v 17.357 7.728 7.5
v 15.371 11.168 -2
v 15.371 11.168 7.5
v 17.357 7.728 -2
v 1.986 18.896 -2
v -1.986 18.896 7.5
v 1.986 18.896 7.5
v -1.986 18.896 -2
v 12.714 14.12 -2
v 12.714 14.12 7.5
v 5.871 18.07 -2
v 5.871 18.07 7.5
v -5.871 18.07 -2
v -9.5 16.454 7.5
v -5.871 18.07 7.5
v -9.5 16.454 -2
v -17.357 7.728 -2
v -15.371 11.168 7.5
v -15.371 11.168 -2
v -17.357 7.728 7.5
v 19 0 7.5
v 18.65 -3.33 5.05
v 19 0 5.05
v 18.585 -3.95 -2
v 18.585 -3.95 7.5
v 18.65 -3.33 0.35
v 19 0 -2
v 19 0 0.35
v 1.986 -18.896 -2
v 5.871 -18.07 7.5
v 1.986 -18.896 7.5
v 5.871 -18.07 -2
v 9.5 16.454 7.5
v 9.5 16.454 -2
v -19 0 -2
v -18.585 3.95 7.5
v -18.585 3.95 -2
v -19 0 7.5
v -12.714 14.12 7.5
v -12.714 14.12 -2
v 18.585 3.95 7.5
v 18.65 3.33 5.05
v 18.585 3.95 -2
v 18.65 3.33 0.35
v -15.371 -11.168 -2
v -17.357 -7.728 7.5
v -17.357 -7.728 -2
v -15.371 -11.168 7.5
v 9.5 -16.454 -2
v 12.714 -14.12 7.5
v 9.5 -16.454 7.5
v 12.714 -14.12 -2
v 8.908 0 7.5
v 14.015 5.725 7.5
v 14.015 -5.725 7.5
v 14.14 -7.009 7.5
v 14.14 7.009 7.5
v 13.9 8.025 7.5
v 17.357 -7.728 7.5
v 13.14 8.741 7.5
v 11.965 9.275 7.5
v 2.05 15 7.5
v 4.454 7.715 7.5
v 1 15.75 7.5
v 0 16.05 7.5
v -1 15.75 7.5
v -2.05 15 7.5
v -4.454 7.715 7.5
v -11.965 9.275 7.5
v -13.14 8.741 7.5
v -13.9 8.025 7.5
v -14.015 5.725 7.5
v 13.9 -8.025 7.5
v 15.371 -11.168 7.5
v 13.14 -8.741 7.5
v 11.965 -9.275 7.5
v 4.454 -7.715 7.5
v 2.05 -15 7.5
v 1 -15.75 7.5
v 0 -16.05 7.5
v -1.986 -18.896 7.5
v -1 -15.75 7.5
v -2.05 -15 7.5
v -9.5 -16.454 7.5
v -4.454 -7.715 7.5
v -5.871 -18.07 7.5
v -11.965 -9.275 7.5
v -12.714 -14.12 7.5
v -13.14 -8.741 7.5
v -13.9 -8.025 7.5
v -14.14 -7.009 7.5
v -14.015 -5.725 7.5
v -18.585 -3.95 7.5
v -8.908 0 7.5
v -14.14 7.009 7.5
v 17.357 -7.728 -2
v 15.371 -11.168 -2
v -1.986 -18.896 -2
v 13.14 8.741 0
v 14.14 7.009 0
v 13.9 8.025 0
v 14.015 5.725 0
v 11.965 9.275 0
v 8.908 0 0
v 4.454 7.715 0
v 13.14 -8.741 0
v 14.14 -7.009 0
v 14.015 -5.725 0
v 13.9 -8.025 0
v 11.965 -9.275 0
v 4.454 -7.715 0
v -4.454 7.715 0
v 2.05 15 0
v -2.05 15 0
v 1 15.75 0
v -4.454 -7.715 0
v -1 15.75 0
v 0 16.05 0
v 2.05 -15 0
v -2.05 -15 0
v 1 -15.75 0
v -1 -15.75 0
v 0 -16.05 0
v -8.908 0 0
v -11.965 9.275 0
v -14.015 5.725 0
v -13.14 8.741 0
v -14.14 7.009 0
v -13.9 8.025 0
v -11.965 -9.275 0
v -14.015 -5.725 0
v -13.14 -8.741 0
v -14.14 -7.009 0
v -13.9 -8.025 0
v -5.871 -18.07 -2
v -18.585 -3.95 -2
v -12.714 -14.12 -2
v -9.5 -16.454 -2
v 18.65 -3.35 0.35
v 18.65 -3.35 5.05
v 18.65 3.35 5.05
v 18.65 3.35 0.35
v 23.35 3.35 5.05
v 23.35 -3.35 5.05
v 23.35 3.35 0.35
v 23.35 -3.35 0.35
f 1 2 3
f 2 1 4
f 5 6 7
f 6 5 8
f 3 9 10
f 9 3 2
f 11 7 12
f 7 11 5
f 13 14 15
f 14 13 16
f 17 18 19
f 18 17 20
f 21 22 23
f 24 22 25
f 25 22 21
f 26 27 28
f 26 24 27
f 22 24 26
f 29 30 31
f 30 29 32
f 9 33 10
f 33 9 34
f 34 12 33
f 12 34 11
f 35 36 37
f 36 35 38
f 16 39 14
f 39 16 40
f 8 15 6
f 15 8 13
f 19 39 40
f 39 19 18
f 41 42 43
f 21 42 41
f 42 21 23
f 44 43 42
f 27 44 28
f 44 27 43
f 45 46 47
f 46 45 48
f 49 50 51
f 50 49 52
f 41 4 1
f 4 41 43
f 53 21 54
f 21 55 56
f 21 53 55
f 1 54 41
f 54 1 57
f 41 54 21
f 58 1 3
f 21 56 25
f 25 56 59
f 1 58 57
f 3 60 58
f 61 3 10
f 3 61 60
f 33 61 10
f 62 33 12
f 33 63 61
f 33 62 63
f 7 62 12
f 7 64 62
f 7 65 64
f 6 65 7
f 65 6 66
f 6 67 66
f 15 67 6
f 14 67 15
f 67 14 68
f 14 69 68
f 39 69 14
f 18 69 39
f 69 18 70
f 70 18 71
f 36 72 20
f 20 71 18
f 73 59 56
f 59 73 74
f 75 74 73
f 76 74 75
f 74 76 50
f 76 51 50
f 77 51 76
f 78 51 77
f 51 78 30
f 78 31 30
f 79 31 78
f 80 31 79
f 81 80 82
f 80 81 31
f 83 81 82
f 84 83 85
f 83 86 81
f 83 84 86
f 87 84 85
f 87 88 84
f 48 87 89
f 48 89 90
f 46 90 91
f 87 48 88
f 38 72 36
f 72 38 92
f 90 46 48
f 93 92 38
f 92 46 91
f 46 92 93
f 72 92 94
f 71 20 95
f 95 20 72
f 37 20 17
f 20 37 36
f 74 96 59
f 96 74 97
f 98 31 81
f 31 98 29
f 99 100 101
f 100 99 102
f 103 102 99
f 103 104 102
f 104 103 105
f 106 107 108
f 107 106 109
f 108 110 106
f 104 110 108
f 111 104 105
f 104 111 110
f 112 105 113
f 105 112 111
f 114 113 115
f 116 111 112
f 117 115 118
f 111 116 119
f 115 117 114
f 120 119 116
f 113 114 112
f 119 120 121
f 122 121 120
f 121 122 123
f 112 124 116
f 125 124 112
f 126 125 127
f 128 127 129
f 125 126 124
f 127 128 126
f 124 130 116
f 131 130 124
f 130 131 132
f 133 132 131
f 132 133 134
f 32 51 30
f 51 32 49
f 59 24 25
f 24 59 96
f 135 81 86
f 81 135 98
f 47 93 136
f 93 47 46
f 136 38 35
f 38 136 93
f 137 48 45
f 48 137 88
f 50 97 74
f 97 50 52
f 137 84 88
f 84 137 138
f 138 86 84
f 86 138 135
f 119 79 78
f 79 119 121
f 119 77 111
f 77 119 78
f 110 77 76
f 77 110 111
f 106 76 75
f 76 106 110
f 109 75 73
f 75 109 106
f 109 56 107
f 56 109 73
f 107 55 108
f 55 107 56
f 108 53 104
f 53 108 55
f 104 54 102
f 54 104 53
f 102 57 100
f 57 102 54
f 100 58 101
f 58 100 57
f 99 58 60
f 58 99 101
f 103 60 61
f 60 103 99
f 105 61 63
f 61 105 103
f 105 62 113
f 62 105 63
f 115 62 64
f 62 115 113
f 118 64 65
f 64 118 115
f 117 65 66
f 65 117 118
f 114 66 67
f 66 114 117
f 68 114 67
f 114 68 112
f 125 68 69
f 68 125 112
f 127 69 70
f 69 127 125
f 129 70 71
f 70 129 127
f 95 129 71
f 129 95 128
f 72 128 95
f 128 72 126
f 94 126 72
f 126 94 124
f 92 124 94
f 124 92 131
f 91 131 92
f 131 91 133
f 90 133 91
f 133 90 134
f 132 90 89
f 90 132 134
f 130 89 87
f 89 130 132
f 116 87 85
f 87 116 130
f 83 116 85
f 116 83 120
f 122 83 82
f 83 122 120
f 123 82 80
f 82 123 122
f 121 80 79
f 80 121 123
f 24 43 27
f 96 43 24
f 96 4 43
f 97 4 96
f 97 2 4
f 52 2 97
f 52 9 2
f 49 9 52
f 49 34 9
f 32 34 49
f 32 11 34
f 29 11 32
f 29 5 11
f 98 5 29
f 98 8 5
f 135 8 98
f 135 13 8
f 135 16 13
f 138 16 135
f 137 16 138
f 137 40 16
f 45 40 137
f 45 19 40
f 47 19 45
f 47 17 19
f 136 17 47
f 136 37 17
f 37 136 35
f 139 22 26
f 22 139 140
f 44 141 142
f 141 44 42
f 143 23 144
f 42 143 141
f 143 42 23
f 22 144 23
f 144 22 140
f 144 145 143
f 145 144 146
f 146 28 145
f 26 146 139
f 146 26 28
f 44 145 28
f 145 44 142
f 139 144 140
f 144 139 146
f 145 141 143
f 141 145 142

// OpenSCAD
$fn = 30;

rad=19;

module servo_horn_interface(){

difference(){
cylinder(r=rad, 7.5);

translate([0,0,-0.5])
linear_extrude(80){
for(i=[0:5])
rotate([0,0,360/6*i])
polygon([[7,0],[2.05,15],[1,15.75],[0,16.05],[-1, 15.75],[-2.05,15],[-7,0]]);
}

}

translate([0,0,-2])
cylinder(r=rad, 2);

translate([21,0,2.7])
cube([4.7,6.7,4.7],center=true);
}

servo_horn_interface();
